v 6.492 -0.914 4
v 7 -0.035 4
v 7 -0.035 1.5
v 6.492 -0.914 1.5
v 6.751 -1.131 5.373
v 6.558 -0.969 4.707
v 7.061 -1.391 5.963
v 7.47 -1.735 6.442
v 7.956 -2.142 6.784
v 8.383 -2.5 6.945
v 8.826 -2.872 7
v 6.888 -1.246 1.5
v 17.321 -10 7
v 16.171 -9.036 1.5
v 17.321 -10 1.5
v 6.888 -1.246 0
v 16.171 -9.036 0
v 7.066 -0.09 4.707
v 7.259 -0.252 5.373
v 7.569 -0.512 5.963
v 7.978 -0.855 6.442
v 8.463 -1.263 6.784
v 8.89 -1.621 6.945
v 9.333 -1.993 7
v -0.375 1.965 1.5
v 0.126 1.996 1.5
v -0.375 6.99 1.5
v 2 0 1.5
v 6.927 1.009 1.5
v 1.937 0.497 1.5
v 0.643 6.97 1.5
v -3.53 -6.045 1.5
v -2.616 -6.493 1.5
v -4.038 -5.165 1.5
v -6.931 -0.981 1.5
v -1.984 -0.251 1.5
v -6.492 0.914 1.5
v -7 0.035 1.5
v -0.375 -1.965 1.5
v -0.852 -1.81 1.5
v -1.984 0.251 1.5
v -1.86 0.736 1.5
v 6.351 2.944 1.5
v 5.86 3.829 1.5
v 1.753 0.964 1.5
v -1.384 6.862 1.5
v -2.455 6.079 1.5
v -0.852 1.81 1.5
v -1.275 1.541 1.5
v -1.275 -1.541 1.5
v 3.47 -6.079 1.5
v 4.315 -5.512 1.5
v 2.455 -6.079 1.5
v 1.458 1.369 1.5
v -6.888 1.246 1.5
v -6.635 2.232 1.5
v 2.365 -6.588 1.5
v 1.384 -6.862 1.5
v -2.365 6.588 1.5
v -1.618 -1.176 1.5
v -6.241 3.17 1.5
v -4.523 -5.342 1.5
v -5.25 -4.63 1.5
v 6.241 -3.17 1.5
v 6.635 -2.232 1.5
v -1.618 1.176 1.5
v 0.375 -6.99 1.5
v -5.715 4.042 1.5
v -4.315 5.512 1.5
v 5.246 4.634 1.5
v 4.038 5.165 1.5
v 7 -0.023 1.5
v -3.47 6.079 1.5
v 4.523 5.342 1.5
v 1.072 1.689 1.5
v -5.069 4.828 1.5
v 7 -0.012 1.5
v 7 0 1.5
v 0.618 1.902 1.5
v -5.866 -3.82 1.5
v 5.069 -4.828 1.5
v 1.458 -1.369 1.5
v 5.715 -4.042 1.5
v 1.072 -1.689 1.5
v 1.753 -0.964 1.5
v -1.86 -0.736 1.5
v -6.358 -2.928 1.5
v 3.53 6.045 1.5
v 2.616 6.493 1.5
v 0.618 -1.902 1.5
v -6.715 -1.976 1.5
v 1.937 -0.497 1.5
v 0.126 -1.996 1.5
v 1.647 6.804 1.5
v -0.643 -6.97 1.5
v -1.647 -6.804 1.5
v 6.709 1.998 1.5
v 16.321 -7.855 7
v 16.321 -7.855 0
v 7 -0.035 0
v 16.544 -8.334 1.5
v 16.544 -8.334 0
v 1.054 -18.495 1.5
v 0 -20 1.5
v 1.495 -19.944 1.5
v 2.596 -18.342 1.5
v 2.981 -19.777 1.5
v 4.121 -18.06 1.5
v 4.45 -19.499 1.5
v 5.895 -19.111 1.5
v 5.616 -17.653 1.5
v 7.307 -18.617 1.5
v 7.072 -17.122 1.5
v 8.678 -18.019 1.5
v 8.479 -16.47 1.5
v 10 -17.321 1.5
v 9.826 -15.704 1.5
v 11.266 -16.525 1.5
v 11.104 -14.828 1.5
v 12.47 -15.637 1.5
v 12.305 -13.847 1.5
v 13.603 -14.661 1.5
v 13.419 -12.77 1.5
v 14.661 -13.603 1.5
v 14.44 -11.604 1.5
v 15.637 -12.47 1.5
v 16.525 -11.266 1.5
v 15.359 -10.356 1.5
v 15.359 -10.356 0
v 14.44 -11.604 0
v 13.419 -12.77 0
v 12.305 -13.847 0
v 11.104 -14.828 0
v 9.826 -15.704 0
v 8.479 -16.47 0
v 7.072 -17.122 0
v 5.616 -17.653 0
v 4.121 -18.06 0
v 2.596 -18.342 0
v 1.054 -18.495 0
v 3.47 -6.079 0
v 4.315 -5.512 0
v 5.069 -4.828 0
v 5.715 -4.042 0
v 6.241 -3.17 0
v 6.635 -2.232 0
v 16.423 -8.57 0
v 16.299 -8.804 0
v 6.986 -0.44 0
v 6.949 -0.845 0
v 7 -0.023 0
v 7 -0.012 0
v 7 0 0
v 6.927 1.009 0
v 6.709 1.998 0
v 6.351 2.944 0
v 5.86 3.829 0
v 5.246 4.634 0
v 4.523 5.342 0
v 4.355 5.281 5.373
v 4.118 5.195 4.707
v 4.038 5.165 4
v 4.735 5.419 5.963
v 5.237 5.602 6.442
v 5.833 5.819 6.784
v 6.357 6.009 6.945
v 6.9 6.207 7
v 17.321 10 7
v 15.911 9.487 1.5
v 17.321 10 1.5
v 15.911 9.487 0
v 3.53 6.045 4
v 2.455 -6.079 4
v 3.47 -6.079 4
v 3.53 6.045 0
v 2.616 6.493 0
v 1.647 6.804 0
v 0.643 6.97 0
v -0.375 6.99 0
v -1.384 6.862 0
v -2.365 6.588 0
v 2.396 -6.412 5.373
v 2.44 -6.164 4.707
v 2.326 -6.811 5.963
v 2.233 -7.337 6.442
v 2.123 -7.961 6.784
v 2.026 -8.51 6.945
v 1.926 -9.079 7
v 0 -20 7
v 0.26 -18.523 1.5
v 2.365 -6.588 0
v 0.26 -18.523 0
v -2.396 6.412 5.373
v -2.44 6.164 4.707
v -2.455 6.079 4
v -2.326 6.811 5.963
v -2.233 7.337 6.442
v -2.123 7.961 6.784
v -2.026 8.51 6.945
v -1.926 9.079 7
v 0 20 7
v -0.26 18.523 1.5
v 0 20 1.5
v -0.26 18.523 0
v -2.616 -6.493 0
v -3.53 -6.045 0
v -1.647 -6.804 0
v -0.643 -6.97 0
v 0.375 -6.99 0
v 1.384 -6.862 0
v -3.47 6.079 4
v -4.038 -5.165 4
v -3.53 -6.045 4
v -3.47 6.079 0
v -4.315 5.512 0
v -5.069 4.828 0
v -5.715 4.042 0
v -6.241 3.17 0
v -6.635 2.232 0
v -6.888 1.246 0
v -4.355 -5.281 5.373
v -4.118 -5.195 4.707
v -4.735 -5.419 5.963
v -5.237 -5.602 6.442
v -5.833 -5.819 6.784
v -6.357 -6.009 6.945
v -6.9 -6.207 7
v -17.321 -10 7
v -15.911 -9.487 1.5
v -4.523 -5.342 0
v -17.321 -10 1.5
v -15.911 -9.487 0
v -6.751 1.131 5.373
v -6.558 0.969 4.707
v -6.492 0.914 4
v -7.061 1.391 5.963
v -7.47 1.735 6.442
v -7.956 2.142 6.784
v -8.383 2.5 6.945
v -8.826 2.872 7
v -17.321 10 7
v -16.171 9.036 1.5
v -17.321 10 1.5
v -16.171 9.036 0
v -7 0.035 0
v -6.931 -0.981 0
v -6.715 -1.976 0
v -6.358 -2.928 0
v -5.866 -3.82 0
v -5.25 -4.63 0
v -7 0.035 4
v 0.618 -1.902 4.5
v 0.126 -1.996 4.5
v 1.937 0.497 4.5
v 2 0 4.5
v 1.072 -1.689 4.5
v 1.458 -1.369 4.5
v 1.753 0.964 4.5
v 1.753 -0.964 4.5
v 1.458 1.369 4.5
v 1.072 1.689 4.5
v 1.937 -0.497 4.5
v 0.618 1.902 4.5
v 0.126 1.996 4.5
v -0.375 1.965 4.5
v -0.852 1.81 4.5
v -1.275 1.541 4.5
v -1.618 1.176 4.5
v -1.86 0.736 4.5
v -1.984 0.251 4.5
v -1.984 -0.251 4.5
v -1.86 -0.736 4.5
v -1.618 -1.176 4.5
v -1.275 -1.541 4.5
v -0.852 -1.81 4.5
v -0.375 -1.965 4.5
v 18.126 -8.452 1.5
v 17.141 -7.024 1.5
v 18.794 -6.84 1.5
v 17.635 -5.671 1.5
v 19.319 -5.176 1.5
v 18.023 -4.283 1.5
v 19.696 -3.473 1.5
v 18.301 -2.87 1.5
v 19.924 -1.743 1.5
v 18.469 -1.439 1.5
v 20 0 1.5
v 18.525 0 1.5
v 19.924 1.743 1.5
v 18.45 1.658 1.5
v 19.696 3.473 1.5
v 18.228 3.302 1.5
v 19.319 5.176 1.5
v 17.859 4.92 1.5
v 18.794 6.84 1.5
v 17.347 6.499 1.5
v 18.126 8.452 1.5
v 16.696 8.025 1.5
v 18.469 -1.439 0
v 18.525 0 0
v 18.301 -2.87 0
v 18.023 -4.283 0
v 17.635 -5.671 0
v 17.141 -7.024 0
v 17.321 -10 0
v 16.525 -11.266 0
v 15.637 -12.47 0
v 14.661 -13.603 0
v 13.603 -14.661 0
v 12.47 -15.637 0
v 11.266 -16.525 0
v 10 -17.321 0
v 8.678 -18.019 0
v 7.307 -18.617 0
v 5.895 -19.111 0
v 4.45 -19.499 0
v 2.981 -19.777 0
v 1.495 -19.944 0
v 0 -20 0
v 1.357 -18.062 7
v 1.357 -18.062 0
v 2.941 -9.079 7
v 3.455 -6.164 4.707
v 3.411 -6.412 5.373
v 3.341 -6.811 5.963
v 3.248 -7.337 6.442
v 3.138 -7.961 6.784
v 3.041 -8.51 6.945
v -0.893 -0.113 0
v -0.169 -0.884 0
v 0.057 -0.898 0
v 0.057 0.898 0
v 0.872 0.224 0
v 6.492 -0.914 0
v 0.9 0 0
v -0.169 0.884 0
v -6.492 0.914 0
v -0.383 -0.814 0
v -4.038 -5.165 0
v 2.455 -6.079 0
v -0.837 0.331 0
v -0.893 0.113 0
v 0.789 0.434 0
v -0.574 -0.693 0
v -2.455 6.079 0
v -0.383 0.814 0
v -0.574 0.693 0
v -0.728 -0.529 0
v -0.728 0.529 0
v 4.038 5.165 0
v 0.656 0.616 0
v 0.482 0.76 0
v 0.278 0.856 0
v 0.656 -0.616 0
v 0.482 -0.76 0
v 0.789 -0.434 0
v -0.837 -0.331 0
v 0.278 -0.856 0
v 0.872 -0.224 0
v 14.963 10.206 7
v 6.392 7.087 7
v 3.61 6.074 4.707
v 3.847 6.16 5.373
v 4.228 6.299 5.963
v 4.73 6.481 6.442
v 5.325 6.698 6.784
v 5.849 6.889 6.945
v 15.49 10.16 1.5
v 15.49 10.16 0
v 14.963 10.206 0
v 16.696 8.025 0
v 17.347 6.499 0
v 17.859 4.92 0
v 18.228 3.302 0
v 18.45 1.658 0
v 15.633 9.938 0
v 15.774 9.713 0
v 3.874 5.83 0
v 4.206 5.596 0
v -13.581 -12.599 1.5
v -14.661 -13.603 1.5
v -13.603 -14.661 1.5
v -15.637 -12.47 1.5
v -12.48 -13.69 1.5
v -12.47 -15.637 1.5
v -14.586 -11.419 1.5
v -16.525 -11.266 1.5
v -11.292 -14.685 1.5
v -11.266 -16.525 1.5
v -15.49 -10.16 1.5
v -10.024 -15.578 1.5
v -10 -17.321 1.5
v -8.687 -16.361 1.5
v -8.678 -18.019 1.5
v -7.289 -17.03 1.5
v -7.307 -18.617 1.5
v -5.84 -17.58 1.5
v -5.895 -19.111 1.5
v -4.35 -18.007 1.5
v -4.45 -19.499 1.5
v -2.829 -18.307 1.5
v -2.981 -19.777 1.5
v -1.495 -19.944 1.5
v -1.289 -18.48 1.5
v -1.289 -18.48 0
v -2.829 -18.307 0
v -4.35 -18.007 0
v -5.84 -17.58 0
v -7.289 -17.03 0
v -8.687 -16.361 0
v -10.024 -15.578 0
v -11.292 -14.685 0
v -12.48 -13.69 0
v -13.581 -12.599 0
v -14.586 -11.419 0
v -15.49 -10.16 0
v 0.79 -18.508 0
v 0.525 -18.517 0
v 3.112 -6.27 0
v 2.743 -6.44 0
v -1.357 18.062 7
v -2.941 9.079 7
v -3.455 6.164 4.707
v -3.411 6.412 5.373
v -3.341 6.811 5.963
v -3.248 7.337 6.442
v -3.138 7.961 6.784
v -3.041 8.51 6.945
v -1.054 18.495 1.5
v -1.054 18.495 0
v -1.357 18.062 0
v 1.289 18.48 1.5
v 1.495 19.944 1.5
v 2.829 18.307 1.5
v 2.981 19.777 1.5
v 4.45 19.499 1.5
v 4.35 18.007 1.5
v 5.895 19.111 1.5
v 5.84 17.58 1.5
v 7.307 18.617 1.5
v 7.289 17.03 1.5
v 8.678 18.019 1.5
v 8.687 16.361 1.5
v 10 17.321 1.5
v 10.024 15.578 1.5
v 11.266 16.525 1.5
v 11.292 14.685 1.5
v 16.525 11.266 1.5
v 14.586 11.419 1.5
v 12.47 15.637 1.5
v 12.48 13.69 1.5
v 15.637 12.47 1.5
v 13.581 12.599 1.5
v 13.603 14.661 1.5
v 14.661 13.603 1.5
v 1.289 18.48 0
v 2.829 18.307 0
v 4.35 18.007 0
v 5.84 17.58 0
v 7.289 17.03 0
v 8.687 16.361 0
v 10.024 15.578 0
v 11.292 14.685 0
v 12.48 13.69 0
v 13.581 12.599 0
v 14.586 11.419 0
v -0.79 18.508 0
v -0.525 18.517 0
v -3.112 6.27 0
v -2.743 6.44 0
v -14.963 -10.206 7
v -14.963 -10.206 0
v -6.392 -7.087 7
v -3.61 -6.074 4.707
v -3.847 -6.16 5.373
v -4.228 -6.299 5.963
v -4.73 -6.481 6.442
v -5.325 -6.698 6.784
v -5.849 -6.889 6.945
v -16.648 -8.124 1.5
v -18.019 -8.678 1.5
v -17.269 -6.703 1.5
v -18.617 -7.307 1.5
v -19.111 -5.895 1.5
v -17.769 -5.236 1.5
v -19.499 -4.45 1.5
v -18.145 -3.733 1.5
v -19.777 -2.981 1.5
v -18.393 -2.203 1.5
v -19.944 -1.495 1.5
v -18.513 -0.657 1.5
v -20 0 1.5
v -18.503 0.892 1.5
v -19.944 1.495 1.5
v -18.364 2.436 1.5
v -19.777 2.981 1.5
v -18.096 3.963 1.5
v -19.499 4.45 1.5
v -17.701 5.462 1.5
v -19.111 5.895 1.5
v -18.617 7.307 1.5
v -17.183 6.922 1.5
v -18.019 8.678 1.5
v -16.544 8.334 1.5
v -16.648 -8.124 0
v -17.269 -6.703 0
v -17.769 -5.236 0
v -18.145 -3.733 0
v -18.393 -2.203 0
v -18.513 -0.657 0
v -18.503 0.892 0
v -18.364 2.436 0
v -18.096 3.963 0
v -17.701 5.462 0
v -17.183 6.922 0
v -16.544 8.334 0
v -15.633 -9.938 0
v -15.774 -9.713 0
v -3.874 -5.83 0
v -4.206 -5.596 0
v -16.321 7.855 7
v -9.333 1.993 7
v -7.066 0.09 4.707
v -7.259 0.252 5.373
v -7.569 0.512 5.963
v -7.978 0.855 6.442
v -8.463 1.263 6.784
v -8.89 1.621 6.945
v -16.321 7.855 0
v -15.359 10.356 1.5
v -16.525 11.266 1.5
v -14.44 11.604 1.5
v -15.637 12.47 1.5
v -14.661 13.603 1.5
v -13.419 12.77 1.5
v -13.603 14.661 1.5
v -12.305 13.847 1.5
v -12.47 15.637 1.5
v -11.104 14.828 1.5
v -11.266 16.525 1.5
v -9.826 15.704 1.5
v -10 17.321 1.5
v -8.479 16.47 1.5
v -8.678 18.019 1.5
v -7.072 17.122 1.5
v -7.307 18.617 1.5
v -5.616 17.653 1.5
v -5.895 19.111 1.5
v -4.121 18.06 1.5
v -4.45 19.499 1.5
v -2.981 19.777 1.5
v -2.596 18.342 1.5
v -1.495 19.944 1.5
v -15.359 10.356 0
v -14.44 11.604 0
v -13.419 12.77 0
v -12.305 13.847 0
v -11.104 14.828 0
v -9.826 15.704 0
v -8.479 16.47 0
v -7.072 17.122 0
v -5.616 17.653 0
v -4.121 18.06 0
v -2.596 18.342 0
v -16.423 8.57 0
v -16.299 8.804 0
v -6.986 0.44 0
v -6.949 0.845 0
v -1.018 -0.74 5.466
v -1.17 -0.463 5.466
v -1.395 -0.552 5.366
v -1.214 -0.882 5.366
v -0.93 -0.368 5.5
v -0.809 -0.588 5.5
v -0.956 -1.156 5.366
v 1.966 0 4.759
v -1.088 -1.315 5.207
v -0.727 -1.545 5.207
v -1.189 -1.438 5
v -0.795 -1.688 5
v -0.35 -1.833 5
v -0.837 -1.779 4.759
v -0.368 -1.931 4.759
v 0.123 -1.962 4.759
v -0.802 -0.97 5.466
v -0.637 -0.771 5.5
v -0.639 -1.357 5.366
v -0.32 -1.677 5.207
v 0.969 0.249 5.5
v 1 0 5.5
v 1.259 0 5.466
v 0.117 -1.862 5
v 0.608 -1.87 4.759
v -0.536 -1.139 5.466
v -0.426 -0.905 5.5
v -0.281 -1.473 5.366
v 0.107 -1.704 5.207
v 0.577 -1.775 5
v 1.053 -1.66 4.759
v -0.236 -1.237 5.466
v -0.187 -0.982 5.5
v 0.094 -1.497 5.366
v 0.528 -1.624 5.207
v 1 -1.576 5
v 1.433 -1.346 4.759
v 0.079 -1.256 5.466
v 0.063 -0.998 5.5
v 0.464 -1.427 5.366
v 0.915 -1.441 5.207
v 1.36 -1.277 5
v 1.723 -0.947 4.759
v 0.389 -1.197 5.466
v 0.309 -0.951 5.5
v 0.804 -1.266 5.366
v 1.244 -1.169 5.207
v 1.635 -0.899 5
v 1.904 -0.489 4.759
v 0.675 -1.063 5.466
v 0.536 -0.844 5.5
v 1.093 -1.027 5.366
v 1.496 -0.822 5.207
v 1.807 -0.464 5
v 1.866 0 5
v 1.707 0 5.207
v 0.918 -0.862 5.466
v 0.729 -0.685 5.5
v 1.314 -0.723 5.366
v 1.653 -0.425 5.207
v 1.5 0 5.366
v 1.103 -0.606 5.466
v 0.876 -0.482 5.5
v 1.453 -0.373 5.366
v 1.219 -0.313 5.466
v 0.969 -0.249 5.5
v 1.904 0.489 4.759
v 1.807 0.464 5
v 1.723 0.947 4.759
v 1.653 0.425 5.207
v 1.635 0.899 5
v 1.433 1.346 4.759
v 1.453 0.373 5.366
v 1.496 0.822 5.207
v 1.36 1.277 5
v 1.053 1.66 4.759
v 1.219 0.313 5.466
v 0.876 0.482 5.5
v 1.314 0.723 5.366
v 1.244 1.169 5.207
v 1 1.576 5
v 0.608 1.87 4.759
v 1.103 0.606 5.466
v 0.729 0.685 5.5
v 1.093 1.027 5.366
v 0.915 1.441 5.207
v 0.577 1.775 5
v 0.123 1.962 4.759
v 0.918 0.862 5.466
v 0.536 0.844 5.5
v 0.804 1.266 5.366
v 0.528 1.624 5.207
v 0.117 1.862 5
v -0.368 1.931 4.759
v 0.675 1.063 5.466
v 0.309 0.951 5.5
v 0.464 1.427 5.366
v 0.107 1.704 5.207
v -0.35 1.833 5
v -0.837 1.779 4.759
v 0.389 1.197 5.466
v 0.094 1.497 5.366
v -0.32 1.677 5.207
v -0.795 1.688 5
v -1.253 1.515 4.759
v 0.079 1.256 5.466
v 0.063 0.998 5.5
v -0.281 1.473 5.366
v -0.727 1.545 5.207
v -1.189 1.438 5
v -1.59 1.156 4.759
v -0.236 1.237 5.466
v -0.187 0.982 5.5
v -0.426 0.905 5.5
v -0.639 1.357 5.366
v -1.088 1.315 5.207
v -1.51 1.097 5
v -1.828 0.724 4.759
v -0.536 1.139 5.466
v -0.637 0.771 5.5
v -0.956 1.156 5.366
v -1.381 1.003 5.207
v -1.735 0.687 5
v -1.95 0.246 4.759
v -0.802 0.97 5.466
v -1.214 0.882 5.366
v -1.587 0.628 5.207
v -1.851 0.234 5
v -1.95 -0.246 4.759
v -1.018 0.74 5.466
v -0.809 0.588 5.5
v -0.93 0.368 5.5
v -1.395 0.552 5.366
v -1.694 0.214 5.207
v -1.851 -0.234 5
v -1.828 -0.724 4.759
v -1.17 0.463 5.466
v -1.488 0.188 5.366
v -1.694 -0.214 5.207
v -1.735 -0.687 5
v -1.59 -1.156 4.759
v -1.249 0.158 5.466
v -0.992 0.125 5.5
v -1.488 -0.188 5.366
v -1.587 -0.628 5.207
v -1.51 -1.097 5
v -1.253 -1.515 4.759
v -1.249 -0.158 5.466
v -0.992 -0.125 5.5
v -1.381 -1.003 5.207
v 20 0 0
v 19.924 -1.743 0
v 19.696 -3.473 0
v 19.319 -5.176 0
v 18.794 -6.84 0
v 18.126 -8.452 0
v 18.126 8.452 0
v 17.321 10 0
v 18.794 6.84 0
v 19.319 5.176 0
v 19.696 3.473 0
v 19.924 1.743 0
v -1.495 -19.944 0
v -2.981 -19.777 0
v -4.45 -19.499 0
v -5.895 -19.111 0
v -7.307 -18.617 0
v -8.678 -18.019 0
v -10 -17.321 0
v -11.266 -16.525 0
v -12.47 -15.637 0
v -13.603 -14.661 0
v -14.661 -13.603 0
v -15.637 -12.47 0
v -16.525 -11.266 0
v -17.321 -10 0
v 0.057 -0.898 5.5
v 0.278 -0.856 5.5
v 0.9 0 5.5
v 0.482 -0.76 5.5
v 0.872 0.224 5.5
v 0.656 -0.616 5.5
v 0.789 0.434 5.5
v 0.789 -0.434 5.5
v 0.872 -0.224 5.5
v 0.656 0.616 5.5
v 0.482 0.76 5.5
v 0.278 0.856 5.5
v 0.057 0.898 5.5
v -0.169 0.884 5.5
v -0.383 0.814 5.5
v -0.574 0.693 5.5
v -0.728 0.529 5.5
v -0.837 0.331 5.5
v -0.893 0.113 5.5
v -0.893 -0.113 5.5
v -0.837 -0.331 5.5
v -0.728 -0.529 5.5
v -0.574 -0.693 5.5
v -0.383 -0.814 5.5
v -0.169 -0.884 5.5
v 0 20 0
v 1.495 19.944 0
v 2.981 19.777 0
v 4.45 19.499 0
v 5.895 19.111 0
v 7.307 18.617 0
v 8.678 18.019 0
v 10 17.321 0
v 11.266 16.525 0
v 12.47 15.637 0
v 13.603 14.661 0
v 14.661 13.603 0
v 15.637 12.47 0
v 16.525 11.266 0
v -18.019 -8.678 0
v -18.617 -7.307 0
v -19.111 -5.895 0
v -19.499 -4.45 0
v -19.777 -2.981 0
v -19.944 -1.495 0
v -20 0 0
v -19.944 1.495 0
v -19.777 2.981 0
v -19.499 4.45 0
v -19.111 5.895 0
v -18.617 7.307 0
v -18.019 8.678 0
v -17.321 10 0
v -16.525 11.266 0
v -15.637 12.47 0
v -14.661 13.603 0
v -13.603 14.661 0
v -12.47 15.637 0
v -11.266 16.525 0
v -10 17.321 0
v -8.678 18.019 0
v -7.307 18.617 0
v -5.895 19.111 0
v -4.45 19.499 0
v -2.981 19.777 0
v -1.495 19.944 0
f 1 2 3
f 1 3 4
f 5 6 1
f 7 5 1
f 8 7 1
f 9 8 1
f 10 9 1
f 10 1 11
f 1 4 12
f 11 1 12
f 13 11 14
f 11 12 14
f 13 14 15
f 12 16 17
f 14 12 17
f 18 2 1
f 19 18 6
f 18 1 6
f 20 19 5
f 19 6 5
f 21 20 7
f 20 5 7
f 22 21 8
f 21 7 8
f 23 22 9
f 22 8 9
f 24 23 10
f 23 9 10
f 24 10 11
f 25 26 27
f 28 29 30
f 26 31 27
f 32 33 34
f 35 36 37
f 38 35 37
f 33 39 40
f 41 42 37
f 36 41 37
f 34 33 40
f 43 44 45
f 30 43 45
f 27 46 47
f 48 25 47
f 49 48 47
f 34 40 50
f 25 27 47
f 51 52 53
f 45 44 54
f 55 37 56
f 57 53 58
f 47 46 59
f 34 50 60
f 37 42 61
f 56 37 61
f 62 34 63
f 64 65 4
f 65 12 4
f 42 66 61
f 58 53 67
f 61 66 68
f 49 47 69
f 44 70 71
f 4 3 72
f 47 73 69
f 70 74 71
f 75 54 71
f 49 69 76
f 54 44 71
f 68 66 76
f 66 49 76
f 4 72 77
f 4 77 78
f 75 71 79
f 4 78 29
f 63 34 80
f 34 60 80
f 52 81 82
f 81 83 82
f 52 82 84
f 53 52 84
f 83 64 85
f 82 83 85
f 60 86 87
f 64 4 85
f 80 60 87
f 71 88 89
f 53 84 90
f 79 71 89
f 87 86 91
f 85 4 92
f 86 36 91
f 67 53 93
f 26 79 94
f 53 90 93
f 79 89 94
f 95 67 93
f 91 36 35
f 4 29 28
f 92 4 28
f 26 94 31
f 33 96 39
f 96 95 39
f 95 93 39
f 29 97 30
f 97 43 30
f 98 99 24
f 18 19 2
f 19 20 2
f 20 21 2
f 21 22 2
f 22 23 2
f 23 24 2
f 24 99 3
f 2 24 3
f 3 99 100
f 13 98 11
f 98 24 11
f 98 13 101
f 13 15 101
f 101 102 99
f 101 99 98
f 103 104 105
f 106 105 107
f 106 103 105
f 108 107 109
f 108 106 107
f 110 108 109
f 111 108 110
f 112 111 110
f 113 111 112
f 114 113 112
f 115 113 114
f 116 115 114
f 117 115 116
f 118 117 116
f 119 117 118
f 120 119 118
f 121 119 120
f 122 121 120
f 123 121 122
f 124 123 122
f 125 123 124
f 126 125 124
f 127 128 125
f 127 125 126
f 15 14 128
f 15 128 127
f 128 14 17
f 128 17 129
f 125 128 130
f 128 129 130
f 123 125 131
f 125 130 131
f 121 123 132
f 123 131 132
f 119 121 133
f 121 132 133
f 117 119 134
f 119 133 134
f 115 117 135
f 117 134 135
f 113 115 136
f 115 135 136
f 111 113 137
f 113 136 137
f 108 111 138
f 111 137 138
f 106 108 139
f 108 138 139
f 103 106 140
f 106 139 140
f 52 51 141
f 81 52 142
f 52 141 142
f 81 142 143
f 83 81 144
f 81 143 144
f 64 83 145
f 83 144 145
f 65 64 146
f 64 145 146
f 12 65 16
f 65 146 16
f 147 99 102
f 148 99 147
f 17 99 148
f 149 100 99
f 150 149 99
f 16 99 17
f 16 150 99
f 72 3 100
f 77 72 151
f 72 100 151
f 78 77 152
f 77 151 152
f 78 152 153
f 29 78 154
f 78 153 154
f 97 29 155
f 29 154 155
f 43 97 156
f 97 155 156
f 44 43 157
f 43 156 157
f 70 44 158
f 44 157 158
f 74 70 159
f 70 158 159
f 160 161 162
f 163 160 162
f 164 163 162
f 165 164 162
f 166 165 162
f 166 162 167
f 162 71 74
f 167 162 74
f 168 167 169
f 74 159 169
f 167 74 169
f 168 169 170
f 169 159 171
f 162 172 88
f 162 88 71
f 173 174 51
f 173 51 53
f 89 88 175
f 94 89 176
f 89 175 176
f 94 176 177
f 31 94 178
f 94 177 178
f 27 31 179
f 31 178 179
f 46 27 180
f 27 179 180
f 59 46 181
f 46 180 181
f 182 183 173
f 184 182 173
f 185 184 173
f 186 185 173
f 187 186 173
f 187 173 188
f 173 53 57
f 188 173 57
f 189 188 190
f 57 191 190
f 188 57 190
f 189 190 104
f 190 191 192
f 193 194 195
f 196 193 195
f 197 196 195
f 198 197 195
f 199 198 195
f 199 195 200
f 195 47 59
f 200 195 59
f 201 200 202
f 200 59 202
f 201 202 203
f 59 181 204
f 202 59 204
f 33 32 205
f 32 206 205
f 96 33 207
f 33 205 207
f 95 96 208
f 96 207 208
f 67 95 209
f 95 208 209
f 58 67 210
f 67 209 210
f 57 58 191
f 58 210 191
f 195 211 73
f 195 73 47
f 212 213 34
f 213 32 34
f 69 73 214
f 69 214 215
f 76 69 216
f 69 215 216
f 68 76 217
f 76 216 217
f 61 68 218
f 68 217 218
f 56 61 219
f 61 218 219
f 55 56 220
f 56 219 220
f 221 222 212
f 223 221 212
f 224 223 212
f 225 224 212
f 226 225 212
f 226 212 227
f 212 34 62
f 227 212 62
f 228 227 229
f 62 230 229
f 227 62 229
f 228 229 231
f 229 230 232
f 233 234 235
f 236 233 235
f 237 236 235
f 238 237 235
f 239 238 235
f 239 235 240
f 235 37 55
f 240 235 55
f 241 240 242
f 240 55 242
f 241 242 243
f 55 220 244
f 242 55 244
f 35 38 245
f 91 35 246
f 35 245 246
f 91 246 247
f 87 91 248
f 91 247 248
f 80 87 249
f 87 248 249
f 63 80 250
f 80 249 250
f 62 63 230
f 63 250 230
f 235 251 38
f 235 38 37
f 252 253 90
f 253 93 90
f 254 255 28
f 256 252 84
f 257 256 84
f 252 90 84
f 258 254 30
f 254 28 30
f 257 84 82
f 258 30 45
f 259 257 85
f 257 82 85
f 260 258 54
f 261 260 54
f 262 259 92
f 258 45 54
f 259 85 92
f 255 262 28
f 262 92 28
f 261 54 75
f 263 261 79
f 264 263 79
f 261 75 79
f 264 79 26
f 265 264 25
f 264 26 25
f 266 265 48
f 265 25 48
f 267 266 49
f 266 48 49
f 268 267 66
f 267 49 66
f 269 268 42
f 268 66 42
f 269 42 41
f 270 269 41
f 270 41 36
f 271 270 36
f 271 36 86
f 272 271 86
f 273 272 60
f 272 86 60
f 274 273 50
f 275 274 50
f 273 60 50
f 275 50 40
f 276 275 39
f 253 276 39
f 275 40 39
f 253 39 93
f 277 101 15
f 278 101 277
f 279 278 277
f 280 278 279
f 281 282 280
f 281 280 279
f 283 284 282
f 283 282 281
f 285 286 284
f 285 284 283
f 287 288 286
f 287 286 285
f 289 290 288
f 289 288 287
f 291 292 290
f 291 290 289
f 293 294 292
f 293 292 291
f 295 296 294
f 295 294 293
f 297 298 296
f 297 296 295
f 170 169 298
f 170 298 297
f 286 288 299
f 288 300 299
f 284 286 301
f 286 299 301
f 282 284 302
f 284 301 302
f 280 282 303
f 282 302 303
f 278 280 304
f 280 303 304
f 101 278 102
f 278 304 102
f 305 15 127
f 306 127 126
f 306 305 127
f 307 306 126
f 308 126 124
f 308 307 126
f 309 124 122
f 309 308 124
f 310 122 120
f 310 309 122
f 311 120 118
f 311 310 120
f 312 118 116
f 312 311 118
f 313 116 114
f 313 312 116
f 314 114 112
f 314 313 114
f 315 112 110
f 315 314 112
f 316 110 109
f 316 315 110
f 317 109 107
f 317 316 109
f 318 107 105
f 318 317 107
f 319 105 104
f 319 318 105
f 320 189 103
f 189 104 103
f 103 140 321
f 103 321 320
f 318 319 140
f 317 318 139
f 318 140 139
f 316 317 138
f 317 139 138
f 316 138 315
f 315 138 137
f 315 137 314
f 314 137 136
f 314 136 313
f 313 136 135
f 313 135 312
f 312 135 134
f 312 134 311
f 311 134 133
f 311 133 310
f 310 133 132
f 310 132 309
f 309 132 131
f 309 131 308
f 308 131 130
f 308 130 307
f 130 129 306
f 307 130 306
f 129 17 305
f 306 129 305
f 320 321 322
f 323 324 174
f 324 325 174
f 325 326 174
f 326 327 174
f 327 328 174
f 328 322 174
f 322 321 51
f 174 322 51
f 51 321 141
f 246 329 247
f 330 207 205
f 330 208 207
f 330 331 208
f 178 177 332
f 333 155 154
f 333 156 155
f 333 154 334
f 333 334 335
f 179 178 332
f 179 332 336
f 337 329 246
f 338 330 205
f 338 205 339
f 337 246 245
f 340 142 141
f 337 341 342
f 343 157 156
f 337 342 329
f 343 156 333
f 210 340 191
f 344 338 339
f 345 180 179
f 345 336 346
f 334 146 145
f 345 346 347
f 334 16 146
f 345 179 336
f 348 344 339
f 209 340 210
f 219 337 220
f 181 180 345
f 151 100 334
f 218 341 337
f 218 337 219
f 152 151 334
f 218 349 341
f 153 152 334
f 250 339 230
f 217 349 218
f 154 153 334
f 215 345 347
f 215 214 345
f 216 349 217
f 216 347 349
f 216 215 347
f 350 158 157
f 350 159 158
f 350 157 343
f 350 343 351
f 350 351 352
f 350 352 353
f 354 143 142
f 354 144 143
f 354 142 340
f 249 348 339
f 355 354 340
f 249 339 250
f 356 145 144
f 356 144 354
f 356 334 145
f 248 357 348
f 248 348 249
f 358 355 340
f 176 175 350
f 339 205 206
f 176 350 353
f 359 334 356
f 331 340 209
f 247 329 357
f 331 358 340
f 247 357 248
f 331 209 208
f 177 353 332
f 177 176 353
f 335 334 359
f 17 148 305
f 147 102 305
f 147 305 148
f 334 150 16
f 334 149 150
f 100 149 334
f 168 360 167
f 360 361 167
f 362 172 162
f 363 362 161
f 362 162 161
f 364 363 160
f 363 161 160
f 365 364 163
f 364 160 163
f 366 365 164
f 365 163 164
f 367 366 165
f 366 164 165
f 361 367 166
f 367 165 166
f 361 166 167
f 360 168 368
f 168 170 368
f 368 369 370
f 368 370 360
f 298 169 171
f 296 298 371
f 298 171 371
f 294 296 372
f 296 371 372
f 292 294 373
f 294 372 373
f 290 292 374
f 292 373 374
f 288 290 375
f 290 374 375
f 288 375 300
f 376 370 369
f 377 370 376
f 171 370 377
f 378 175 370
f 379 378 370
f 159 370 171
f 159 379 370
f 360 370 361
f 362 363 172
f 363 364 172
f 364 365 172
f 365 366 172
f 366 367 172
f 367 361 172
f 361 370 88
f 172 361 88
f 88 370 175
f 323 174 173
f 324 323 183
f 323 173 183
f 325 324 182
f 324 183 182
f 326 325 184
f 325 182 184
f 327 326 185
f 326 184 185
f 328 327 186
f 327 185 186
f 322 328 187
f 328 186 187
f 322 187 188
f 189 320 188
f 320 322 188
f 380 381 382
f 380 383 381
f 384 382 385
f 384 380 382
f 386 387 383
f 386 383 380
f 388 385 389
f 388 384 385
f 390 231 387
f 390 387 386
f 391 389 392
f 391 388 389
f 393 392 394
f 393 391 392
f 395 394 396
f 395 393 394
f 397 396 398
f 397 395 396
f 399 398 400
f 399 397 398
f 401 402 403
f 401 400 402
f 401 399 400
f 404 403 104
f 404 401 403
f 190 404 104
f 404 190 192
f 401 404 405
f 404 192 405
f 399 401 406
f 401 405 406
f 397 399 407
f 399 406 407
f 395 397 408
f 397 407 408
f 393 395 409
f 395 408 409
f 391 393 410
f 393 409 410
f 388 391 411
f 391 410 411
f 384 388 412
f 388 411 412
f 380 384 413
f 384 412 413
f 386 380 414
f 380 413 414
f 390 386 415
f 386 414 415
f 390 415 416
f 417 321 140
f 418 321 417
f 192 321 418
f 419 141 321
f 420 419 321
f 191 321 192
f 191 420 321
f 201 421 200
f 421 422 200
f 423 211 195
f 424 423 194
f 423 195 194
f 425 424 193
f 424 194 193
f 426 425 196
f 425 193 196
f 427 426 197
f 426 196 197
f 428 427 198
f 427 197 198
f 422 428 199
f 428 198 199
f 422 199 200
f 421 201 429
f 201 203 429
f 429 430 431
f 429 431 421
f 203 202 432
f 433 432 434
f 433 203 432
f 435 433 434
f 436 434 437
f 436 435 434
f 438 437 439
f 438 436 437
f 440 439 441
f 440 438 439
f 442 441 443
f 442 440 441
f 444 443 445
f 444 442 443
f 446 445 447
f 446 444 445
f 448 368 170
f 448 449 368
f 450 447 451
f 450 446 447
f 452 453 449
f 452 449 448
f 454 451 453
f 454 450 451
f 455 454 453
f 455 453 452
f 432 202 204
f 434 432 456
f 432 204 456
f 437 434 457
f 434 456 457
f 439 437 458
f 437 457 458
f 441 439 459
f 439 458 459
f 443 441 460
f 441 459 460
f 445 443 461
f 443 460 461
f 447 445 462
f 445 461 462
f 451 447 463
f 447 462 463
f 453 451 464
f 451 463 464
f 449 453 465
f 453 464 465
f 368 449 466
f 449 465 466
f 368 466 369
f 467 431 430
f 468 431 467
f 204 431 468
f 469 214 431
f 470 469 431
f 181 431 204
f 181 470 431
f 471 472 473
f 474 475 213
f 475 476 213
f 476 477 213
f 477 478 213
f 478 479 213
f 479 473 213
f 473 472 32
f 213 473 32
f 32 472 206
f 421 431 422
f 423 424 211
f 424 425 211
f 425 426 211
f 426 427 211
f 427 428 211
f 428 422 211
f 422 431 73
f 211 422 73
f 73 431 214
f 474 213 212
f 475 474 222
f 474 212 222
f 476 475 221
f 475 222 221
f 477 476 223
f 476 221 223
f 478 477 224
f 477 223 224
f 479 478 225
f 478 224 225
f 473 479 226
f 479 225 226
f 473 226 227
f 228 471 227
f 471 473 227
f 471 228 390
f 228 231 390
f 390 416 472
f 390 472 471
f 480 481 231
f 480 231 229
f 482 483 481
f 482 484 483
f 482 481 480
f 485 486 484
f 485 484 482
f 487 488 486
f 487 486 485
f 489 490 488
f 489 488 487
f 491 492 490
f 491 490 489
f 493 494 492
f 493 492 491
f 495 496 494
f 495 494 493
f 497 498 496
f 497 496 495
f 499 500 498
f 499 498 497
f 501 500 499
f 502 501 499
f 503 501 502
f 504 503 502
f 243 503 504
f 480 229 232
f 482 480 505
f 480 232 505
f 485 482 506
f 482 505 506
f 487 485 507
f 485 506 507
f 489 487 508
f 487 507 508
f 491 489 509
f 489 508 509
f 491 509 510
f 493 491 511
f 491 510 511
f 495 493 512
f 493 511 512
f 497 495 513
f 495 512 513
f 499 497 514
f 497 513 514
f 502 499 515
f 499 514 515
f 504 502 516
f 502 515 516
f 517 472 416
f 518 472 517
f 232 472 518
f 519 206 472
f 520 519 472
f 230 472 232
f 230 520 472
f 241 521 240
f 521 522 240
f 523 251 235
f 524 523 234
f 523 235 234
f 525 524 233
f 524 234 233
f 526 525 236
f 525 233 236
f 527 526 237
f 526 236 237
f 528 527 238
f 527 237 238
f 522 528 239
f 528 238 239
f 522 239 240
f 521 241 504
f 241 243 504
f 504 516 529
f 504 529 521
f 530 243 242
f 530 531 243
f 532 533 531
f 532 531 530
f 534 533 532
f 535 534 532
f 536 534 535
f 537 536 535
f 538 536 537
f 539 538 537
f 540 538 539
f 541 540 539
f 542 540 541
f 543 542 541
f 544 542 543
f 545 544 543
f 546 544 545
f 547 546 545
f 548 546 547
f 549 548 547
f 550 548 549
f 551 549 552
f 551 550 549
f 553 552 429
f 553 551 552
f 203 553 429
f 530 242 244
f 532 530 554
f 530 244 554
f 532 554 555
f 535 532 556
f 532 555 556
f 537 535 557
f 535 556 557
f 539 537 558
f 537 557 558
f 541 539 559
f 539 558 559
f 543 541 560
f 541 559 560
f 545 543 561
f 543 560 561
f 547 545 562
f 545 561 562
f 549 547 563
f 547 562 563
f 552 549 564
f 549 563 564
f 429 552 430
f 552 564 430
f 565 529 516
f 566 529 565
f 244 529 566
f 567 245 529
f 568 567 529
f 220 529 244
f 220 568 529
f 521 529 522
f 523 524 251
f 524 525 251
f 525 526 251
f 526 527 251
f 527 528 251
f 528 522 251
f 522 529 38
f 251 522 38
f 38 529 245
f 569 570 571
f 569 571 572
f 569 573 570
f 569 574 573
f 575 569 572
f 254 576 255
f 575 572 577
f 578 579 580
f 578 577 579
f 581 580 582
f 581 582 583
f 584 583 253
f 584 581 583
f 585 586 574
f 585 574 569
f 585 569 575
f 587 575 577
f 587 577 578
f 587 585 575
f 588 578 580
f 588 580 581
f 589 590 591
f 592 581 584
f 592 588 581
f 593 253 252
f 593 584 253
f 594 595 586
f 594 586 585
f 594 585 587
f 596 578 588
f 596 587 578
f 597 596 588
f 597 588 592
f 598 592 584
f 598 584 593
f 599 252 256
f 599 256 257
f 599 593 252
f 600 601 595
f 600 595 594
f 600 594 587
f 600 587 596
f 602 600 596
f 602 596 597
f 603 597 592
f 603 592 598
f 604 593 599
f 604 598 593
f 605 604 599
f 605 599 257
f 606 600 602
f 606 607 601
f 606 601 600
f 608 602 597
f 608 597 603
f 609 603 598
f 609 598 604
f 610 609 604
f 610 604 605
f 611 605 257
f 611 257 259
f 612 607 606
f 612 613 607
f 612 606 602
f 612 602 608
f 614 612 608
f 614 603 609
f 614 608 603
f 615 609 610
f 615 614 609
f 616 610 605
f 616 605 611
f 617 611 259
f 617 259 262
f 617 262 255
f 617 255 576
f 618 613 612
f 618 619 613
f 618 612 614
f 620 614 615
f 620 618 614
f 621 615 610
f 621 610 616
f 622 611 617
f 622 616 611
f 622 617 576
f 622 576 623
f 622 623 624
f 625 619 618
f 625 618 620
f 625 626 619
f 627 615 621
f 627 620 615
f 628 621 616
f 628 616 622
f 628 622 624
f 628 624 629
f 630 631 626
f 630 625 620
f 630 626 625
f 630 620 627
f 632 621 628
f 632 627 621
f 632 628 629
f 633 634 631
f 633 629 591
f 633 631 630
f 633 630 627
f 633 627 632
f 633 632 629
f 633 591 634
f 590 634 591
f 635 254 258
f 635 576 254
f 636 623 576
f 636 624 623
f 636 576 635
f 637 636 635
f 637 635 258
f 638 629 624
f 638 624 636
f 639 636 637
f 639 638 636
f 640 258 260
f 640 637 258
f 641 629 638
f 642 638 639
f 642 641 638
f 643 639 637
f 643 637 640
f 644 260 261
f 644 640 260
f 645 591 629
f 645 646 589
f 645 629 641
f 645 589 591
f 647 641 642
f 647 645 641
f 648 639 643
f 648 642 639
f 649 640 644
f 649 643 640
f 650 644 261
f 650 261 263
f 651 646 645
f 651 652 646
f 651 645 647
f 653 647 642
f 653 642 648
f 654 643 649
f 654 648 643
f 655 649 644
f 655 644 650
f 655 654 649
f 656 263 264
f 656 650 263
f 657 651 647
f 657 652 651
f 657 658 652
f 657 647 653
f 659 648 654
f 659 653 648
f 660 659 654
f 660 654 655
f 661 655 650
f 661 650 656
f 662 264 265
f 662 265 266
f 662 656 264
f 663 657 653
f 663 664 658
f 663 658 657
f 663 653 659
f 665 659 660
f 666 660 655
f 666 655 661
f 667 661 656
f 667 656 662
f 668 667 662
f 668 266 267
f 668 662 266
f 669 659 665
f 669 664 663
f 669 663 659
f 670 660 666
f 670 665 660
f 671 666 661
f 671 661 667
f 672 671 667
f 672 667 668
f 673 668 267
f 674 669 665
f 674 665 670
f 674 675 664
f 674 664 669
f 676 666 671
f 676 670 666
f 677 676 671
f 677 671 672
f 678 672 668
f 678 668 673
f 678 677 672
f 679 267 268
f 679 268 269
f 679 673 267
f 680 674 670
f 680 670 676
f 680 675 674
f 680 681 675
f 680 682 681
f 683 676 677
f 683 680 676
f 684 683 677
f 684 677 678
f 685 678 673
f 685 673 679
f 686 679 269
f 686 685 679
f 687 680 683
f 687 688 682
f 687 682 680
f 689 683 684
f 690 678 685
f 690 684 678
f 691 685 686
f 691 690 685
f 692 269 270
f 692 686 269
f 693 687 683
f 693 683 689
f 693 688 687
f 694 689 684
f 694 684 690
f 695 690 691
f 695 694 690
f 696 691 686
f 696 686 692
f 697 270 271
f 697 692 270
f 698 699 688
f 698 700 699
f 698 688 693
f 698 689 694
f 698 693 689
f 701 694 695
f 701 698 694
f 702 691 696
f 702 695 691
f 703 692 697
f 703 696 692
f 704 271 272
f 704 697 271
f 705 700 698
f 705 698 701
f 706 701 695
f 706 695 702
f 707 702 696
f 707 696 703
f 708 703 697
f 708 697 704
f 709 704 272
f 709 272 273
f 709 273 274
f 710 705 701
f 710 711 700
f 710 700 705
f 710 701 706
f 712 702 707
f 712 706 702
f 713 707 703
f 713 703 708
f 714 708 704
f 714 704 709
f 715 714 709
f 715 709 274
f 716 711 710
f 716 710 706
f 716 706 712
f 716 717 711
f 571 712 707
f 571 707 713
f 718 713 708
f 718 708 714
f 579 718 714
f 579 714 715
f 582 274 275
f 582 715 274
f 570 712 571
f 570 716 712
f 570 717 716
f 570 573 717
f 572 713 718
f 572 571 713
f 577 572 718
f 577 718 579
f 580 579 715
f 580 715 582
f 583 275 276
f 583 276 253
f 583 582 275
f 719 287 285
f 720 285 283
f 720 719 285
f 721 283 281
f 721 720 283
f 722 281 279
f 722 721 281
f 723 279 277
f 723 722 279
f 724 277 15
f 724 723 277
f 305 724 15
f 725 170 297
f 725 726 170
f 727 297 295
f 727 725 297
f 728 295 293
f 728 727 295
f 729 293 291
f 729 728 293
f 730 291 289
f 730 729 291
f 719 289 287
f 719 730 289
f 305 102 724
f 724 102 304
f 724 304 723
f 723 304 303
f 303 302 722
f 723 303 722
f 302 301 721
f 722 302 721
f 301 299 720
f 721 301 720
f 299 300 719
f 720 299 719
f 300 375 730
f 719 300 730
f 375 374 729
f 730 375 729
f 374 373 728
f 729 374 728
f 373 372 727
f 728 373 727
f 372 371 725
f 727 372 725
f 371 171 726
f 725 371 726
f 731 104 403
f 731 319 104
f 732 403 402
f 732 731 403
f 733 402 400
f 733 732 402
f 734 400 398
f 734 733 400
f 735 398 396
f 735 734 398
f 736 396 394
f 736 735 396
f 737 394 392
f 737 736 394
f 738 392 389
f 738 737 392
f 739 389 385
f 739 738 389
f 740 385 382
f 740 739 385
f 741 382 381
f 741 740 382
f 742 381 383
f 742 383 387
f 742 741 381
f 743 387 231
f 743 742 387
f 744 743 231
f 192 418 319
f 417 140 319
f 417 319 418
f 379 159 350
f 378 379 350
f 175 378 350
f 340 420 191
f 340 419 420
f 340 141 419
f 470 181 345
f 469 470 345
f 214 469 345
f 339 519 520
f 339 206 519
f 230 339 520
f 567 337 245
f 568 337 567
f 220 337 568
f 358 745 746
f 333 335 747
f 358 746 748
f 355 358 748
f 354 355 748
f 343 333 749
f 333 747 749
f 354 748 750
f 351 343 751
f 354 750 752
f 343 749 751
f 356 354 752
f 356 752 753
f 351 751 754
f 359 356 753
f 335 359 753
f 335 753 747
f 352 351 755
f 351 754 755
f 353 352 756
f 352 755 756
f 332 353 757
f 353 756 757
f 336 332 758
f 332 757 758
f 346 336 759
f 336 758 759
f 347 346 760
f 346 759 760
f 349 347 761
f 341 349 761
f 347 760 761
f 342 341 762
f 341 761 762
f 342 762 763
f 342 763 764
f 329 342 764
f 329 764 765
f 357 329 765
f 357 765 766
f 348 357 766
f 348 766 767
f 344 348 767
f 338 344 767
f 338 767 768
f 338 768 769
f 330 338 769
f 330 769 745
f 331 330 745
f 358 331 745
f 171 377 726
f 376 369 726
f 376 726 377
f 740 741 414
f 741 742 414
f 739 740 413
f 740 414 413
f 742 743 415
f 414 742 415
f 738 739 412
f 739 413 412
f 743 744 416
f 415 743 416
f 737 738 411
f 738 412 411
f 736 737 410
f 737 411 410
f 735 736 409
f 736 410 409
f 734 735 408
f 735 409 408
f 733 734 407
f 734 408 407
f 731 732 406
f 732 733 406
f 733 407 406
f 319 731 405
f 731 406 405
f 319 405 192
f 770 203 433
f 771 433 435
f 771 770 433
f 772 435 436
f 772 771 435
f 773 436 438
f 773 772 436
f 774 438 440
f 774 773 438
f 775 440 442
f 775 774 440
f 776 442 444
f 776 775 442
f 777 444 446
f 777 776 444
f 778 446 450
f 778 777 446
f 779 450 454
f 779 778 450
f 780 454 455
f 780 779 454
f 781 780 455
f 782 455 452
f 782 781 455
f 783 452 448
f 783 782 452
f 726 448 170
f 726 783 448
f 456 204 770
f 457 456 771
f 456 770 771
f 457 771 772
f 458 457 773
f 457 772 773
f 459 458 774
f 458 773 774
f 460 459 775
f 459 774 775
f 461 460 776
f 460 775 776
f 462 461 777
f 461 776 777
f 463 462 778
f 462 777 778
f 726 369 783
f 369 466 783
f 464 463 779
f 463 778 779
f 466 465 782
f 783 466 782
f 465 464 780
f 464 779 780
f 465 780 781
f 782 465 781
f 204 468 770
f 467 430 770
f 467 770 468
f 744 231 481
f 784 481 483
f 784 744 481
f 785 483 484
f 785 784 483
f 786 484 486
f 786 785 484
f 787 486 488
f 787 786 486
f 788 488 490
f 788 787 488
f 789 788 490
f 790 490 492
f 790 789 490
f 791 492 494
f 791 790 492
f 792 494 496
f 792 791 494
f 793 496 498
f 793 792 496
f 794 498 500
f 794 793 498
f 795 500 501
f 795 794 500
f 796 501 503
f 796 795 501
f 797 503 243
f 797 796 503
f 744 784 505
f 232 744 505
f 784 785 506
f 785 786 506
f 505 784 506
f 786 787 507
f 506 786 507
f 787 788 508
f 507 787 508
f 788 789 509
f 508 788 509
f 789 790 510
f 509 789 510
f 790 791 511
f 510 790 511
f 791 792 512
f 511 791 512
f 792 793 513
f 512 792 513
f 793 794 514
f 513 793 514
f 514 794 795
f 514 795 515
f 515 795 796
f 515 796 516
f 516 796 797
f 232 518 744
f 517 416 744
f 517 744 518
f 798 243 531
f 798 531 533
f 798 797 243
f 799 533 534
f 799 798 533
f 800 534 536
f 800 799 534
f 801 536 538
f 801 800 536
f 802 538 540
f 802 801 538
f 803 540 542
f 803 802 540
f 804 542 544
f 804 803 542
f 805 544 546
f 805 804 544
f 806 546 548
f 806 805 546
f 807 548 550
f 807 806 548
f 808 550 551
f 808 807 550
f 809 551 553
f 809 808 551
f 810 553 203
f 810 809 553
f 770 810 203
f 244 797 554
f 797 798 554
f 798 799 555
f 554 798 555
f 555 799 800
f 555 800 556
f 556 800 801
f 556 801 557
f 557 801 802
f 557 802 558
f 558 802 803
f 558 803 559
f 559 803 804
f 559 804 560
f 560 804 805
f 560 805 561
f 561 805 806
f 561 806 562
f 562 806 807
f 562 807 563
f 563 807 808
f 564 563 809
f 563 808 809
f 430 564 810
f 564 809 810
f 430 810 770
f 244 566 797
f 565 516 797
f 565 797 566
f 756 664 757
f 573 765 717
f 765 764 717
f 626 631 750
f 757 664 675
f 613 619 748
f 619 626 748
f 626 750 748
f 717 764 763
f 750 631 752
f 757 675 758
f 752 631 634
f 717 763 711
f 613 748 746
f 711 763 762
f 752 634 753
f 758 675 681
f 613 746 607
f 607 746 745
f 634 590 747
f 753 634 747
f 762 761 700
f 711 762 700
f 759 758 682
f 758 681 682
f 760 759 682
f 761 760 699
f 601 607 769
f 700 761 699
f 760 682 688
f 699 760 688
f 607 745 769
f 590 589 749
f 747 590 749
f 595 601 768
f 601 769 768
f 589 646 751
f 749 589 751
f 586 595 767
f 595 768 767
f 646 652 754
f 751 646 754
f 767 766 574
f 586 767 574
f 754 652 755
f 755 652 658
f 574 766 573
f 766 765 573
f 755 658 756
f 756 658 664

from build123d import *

# Parameters (mm, degrees)
SKETCH_R           = 7
PAD_DEPTH          = 1.5
PAD001_DEPTH       = 7
POLARPATTERN_COUNT = 6
SKETCH002_R        = 20
SKETCH002_R_2      = 18.52462
PAD002_DEPTH       = 1.5
SKETCH003_R        = 2
PAD003_DEPTH       = 4
SKETCH004_R        = 0.9
POCKET_DEPTH       = 10
FILLET_R           = 1
FILLET001_R        = 3


with BuildPart() as part:
    # Sketch → Pad (new body)
    with BuildSketch(Plane.XY):
        Circle(SKETCH_R)
    extrude(amount=PAD_DEPTH)

    # Sketch001 → Pad001 (new body)
    with BuildSketch(Plane(origin=(0, 0, 0), x_dir=(1, 0, 0), z_dir=(0, 0, -1))):
        Polygon((2.454578, 6.079397), (0, 20), (1.357197, 18.061721), (3.470004, 6.079397), align=None)
    pad001 = extrude(amount=-PAD001_DEPTH)

    # PolarPattern: Pad001 ×6 about axis
    polarpattern_axis = Axis((0, 0, 0), (0, 0, -1))
    for i in range(1, POLARPATTERN_COUNT):
        add(pad001.rotate(polarpattern_axis, i * 360 / POLARPATTERN_COUNT))

    # Sketch002 → Pad002 (new body)
    with BuildSketch(Plane(origin=(0, 0, 0), x_dir=(1, 0, 0), z_dir=(0, 0, -1))):
        Circle(SKETCH002_R)
        Circle(SKETCH002_R_2, mode=Mode.SUBTRACT)
    extrude(amount=-PAD002_DEPTH)

    # Sketch003 → Pad003 (new body)
    with BuildSketch(Plane.XY.offset(1.5)):
        Circle(SKETCH003_R)
    extrude(amount=PAD003_DEPTH)

    # Sketch004 → Pocket (cut)
    with BuildSketch(Plane.XY.offset(5.5)):
        Circle(SKETCH004_R)
    extrude(amount=-POCKET_DEPTH, mode=Mode.SUBTRACT)

    # Fillet
    fillet_edges = [part.edges().sort_by_distance(p)[0] for p in [
        (-2, 0, 5.5),
    ]]
    fillet(fillet_edges, radius=FILLET_R)

    # Fillet001
    fillet001_edges = [part.edges().sort_by_distance(p)[0] for p in [
        (2.962291, -6.079397, 7),
        (-3.783767, -5.605118, 7),
        (-6.746058, 0.474279, 7),
        (-2.962291, 6.079397, 7),
        (3.783767, 5.605118, 7),
        (6.746058, -0.474279, 7),
    ]]
    fillet(fillet001_edges, radius=FILLET001_R)


solid = part.part
